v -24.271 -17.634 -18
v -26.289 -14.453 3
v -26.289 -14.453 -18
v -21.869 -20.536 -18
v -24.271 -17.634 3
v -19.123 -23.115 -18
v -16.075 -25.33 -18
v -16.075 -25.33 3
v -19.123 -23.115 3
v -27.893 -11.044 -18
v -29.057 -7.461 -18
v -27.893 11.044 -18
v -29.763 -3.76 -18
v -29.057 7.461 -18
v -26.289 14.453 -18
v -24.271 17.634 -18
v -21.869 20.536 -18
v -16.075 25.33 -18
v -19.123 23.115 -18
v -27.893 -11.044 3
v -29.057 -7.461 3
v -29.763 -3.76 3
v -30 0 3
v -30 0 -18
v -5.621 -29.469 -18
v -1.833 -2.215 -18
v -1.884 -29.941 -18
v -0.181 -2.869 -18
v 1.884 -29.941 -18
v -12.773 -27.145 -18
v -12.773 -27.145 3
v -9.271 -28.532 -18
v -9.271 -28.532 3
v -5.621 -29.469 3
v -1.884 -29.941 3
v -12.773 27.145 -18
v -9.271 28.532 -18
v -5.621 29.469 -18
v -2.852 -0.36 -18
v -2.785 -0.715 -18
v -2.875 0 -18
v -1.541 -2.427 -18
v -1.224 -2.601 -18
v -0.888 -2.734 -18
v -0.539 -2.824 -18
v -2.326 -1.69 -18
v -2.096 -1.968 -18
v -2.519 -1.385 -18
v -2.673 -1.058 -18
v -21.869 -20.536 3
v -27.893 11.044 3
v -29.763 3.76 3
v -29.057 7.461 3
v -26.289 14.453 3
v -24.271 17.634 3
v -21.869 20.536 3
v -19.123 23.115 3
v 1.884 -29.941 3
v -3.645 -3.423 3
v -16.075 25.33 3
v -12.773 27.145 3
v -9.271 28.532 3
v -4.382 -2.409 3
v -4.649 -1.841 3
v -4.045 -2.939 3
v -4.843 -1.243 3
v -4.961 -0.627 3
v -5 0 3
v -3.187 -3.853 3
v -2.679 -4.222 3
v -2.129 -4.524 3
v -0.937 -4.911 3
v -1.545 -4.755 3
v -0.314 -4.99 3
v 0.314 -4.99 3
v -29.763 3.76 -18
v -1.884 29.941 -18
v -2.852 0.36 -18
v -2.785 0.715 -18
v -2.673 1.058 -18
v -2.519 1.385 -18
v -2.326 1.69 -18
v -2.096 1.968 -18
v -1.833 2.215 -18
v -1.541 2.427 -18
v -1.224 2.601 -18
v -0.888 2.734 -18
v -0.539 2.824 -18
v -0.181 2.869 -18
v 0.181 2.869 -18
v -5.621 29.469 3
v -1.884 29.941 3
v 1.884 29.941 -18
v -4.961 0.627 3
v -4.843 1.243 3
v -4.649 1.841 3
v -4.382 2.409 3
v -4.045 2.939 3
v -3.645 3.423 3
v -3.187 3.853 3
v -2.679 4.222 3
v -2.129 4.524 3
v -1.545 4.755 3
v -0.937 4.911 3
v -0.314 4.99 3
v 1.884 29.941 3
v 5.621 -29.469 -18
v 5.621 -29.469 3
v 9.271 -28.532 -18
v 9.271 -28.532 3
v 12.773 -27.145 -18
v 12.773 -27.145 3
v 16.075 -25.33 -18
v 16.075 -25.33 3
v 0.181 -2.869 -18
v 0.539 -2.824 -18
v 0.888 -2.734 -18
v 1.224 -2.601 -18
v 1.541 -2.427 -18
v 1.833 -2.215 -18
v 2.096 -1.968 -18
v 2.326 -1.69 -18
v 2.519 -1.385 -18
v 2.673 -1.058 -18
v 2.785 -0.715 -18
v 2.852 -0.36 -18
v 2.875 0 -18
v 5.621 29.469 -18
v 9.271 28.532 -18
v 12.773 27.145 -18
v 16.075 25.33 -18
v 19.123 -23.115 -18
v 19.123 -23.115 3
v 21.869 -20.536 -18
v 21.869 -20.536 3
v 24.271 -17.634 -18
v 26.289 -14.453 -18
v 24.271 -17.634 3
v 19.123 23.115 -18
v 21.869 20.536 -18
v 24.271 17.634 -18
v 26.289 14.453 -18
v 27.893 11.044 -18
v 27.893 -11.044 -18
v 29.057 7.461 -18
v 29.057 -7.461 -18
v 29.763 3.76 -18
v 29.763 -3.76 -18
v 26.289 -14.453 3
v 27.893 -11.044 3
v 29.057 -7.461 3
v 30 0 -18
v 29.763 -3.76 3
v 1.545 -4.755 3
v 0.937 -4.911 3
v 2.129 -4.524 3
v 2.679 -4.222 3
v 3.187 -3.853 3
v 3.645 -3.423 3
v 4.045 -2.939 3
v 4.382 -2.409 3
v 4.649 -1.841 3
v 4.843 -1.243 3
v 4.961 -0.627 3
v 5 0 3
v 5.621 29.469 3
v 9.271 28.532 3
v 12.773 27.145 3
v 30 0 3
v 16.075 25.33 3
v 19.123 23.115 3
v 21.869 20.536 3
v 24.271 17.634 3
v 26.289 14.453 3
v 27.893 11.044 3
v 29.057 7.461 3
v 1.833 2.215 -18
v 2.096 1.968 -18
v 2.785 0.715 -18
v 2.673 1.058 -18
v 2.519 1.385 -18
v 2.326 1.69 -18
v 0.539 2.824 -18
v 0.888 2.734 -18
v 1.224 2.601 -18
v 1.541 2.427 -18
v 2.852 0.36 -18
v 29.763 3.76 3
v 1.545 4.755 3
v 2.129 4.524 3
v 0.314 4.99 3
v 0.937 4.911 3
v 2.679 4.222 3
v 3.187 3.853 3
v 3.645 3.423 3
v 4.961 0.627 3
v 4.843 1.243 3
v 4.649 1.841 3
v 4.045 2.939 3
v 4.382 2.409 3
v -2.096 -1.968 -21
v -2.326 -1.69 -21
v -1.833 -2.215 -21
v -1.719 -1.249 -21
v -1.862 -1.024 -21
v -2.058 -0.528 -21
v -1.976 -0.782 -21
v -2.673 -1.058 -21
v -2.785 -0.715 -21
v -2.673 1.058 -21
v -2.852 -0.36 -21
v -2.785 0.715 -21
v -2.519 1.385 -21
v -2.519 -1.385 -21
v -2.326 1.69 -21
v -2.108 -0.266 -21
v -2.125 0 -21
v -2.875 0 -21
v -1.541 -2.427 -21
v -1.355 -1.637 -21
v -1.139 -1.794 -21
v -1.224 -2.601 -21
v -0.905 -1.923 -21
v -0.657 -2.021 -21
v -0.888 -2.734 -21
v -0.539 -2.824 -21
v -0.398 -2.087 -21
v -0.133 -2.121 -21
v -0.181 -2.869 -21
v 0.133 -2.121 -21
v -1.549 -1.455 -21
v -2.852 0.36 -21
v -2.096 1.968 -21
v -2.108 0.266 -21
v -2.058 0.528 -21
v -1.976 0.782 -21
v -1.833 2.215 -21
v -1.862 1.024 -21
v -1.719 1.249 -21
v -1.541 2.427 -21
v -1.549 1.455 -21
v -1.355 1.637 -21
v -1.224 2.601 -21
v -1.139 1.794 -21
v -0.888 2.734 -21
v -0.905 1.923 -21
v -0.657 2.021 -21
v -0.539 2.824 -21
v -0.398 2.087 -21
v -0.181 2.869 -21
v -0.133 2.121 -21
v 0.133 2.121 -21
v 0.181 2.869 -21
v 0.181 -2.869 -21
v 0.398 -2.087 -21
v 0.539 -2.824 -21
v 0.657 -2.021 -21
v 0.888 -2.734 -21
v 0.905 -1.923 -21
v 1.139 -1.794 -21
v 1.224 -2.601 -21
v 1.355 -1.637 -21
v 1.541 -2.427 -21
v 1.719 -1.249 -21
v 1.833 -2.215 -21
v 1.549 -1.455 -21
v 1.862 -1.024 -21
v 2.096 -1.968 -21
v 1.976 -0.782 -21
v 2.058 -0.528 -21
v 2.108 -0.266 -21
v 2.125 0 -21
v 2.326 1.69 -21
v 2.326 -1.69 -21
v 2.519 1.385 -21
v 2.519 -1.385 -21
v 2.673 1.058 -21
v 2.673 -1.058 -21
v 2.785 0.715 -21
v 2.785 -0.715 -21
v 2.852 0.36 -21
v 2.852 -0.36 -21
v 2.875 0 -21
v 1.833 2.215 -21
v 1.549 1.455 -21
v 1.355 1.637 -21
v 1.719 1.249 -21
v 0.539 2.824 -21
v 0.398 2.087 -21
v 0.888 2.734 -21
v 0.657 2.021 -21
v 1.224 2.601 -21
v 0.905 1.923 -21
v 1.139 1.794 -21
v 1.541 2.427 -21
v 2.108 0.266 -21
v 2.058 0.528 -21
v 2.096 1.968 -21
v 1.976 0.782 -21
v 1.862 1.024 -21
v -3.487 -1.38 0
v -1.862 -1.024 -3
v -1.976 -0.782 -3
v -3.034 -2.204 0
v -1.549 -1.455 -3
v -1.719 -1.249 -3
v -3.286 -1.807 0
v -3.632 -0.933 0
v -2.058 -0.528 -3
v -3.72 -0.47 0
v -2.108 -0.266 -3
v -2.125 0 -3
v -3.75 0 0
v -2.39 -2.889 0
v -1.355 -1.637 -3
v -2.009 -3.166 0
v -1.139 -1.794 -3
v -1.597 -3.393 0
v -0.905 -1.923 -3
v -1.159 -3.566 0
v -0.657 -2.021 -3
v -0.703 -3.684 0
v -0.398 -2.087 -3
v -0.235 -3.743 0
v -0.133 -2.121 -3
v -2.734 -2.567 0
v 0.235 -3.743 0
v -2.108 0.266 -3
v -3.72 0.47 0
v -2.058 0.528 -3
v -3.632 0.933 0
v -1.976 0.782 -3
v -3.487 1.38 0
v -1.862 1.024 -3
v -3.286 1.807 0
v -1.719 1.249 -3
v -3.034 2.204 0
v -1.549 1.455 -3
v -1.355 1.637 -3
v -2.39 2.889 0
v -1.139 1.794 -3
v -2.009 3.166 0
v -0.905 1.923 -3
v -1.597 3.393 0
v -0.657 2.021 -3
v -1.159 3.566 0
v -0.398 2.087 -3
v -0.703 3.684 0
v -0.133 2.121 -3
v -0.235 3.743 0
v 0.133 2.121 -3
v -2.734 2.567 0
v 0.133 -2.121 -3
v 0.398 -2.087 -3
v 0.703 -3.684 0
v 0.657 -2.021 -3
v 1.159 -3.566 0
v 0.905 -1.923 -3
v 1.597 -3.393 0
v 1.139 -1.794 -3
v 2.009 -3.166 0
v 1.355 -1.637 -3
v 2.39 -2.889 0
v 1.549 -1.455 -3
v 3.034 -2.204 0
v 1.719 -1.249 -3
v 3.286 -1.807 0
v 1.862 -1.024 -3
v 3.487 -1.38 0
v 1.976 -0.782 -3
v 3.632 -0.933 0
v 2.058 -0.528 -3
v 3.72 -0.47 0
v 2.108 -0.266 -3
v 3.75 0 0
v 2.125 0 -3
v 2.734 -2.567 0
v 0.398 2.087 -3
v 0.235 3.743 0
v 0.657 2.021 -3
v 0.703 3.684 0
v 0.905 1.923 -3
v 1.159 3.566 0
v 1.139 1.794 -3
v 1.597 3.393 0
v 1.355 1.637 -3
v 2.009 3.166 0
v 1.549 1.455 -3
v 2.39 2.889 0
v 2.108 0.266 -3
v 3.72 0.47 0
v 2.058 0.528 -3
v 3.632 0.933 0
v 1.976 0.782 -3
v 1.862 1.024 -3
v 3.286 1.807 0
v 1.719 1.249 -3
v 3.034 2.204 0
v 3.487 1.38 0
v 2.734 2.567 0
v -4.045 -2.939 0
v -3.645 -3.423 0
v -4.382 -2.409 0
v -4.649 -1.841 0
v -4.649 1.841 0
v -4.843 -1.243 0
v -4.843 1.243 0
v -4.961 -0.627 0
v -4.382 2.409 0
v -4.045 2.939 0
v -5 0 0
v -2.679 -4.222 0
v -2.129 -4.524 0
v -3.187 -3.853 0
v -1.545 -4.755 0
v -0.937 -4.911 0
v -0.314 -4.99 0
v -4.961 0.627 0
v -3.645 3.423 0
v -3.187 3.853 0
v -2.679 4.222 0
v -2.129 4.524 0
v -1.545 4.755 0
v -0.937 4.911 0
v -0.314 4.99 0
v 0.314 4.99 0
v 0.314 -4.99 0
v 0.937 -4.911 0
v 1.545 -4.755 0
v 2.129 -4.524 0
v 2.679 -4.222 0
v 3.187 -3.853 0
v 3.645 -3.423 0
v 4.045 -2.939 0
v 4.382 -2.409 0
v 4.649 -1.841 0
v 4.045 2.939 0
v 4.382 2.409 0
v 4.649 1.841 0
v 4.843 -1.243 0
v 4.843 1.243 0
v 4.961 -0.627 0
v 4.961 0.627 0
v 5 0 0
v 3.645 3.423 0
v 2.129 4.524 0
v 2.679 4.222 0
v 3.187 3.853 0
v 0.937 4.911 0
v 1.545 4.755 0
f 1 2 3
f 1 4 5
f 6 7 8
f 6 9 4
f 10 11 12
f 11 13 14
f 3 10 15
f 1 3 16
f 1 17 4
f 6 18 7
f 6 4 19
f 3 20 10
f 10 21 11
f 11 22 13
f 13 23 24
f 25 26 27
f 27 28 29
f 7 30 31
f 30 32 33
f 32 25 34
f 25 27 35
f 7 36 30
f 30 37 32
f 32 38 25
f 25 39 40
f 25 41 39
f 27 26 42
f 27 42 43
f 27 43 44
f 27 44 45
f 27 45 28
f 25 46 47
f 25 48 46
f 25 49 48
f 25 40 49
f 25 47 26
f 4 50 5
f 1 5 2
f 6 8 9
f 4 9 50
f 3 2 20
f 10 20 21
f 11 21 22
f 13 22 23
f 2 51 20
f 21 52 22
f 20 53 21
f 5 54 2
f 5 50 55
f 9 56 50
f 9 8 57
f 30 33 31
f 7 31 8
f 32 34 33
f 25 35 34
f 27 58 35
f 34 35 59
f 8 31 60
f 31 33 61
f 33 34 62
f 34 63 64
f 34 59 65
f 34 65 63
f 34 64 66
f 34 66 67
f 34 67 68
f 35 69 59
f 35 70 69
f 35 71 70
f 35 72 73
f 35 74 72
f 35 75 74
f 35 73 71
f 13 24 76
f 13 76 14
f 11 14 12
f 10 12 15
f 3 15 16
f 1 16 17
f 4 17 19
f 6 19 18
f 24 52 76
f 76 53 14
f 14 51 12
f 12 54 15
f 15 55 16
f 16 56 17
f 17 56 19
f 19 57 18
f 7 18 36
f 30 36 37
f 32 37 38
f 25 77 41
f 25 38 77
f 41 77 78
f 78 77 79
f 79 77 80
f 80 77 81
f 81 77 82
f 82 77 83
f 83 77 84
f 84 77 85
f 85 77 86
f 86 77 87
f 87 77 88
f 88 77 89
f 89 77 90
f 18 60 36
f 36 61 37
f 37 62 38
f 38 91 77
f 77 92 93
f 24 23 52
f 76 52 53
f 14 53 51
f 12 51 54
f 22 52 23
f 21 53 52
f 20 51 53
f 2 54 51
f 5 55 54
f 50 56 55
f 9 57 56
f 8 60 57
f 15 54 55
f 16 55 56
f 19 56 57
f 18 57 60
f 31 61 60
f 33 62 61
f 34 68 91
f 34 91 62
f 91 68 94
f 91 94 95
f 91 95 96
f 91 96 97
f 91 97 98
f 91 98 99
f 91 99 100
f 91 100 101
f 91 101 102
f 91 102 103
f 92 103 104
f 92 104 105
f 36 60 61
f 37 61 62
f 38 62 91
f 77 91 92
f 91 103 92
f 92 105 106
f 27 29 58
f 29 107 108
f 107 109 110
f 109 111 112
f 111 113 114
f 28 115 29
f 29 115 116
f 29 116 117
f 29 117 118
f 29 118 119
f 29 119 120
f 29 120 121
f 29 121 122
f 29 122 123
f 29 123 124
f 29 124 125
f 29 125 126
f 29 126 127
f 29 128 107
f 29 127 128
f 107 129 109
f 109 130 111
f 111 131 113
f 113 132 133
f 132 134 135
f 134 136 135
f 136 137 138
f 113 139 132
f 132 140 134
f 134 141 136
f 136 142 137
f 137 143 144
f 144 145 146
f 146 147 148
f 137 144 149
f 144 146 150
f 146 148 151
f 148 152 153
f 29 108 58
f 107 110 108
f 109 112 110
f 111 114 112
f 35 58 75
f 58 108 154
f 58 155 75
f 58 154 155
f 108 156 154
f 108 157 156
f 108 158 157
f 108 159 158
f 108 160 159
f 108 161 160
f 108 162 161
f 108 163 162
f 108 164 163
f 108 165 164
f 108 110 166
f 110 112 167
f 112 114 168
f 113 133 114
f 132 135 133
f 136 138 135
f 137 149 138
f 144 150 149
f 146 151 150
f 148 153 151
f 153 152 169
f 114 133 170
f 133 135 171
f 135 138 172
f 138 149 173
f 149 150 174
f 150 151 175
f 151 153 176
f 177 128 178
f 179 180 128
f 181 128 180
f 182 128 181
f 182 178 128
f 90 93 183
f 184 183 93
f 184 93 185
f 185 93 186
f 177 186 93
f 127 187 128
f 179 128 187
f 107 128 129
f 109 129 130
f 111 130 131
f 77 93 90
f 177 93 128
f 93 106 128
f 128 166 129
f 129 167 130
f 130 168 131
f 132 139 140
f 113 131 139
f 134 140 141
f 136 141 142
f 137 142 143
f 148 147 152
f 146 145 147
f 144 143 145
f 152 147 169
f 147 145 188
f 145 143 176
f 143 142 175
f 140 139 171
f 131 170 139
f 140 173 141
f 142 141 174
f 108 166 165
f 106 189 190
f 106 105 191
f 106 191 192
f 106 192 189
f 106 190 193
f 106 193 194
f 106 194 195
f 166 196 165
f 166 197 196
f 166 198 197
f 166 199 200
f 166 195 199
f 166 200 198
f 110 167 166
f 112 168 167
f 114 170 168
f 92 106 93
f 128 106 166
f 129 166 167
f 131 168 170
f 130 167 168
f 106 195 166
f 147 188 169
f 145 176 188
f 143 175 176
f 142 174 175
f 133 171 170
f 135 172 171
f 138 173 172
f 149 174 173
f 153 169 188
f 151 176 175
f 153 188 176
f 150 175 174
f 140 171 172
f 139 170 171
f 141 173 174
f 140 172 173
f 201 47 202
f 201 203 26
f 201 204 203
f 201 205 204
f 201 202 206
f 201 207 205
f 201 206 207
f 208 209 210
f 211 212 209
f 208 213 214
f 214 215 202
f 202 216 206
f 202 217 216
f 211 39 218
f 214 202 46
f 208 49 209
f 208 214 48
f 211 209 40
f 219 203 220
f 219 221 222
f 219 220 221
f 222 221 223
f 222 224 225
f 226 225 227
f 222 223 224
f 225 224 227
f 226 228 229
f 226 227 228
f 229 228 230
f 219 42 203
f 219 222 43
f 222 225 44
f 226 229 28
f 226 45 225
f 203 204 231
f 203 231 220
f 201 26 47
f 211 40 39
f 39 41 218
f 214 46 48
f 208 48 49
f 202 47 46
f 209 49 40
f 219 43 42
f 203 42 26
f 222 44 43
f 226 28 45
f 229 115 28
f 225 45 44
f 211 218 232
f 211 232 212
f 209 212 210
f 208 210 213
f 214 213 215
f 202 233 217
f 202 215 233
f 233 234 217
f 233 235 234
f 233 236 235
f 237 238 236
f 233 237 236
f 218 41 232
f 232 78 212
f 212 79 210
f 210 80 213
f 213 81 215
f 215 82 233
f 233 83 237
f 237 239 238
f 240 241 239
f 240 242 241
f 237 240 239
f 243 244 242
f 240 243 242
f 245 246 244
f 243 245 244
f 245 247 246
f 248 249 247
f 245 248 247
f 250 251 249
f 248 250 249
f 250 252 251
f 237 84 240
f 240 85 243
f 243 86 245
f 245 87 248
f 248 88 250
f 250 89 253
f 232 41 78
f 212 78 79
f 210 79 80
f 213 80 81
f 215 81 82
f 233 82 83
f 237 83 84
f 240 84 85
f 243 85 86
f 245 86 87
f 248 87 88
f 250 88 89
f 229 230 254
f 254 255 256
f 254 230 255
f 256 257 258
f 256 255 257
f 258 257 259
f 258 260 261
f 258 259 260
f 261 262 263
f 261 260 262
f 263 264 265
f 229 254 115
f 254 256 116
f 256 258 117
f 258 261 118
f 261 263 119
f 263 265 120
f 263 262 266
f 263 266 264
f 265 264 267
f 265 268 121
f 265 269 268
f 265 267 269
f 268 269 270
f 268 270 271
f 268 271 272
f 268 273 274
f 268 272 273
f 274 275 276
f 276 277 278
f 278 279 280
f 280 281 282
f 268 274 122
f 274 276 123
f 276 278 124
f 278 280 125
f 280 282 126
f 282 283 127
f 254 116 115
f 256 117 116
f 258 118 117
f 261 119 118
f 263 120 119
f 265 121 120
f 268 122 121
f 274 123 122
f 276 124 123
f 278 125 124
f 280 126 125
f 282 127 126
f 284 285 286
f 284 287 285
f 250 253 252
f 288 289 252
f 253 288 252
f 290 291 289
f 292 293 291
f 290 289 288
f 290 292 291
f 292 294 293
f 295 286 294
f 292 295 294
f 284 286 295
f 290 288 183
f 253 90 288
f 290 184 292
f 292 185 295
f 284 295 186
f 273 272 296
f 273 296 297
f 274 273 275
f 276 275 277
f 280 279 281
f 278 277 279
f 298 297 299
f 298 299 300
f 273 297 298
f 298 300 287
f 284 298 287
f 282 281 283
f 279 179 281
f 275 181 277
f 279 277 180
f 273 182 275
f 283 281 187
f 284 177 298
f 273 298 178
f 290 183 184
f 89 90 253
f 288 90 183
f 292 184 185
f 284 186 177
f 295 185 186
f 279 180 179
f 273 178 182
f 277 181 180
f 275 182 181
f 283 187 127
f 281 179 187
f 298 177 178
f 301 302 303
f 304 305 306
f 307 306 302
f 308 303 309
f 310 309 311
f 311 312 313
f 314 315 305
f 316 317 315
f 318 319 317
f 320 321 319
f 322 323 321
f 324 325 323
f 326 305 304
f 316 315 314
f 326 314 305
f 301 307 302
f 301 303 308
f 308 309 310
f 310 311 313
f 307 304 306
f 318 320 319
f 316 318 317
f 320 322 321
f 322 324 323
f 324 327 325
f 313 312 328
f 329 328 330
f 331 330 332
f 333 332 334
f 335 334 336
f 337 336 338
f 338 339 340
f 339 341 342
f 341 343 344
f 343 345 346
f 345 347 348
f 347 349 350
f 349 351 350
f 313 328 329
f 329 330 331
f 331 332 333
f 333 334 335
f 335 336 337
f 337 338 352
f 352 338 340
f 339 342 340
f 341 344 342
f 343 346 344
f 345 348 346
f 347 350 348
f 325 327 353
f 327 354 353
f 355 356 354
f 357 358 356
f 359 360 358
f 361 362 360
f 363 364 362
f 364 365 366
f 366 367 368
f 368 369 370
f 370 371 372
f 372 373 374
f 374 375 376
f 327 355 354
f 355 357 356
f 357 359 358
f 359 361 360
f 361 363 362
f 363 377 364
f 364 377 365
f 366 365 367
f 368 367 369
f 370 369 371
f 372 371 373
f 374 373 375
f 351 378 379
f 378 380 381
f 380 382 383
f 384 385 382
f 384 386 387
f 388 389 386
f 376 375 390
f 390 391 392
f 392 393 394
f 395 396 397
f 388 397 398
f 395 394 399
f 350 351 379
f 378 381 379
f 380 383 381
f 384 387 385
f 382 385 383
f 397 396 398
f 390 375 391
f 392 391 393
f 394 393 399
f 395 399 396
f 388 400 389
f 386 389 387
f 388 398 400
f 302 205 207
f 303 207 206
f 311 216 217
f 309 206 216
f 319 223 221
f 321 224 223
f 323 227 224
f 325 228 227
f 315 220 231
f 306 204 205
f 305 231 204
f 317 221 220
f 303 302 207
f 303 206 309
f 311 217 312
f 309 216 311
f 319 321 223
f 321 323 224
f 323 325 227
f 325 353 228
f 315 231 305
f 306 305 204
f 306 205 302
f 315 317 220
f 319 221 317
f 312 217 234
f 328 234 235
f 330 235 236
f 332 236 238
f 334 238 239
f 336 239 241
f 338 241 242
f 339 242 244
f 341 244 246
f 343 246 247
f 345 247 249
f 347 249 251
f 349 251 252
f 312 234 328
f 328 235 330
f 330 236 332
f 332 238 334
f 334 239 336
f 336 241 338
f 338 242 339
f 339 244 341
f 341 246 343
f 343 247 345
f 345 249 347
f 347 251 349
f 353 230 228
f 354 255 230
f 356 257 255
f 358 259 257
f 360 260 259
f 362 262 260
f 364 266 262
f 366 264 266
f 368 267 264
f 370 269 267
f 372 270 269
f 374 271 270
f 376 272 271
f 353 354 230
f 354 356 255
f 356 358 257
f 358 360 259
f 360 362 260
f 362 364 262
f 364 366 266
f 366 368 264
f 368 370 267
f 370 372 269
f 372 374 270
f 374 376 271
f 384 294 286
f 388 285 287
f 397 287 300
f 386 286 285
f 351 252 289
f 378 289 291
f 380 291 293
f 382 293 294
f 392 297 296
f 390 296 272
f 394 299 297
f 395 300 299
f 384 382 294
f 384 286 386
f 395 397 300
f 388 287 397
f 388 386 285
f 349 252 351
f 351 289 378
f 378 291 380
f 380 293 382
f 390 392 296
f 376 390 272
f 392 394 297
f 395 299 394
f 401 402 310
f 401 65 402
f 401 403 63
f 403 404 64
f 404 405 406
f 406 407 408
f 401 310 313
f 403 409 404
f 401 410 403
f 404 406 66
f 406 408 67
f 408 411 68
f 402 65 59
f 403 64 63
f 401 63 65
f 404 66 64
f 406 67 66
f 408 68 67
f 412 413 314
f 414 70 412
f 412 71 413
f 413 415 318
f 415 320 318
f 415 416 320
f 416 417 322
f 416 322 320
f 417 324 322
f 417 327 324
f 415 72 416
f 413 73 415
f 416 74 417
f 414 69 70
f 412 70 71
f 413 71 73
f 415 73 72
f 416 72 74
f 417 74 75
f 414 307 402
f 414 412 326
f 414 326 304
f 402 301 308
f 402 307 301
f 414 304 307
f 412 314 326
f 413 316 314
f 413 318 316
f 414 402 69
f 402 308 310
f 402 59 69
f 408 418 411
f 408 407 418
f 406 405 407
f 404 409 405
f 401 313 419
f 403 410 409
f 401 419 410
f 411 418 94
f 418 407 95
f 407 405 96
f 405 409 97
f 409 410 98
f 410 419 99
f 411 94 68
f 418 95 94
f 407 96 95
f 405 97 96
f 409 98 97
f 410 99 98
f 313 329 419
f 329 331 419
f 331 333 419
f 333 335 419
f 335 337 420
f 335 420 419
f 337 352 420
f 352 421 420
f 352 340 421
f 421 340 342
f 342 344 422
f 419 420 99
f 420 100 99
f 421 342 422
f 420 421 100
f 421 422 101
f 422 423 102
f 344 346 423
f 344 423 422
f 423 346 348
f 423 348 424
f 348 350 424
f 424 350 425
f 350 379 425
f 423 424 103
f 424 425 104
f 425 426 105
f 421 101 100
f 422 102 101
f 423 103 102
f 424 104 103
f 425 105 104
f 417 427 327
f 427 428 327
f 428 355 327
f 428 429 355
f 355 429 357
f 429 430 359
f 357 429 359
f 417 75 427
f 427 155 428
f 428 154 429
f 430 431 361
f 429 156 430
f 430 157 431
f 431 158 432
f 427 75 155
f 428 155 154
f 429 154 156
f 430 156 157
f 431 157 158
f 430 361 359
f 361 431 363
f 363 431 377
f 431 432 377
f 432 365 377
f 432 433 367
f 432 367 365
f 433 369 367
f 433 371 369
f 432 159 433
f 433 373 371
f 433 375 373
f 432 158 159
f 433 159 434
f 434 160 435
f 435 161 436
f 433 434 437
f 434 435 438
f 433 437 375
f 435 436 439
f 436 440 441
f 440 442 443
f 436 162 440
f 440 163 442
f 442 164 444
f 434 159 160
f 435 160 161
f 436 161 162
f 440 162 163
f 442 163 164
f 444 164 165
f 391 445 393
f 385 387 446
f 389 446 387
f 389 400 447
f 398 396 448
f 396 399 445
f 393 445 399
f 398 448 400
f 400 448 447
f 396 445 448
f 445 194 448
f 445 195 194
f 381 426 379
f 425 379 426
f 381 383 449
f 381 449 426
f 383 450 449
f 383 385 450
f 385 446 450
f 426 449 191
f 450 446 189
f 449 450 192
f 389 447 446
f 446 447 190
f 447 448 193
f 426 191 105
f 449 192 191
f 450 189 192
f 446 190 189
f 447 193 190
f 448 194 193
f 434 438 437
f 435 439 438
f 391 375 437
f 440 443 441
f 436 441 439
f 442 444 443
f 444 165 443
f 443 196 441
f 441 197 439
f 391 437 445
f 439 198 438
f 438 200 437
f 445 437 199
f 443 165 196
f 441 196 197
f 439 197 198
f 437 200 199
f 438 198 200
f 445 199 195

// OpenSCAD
$fn = 50;

difference() {
	union() {
		translate(v = [0, 0, -18.0]) {
			cylinder(h = 21, r = 30.0);
		}
		#translate(v = [0, 0, -21.0]) {
			cylinder(h = 21, r = 2.875);
		}
	}
	union() {
		translate(v = [0, 0, 0]) {
			rotate(a = [0, 0, 0]) {
				difference() {
					union() {
						translate(v = [0, 0, -21.0]) {
							cylinder(h = 21, r = 2.0);
						}
						translate(v = [0, 0, -3]) {
							cylinder(h = 3, r1 = 2.125, r2 = 3.75);
						}
						translate(v = [0, 0, -21.0]) {
							cylinder(h = 21, r = 2.125);
						}
						translate(v = [0, 0, -21.0]) {
							cylinder(h = 21, r = 2.0);
						}
					}
					union();
				}
			}
		}
		#cylinder(h = 3, r = 5.0);
	}
}
